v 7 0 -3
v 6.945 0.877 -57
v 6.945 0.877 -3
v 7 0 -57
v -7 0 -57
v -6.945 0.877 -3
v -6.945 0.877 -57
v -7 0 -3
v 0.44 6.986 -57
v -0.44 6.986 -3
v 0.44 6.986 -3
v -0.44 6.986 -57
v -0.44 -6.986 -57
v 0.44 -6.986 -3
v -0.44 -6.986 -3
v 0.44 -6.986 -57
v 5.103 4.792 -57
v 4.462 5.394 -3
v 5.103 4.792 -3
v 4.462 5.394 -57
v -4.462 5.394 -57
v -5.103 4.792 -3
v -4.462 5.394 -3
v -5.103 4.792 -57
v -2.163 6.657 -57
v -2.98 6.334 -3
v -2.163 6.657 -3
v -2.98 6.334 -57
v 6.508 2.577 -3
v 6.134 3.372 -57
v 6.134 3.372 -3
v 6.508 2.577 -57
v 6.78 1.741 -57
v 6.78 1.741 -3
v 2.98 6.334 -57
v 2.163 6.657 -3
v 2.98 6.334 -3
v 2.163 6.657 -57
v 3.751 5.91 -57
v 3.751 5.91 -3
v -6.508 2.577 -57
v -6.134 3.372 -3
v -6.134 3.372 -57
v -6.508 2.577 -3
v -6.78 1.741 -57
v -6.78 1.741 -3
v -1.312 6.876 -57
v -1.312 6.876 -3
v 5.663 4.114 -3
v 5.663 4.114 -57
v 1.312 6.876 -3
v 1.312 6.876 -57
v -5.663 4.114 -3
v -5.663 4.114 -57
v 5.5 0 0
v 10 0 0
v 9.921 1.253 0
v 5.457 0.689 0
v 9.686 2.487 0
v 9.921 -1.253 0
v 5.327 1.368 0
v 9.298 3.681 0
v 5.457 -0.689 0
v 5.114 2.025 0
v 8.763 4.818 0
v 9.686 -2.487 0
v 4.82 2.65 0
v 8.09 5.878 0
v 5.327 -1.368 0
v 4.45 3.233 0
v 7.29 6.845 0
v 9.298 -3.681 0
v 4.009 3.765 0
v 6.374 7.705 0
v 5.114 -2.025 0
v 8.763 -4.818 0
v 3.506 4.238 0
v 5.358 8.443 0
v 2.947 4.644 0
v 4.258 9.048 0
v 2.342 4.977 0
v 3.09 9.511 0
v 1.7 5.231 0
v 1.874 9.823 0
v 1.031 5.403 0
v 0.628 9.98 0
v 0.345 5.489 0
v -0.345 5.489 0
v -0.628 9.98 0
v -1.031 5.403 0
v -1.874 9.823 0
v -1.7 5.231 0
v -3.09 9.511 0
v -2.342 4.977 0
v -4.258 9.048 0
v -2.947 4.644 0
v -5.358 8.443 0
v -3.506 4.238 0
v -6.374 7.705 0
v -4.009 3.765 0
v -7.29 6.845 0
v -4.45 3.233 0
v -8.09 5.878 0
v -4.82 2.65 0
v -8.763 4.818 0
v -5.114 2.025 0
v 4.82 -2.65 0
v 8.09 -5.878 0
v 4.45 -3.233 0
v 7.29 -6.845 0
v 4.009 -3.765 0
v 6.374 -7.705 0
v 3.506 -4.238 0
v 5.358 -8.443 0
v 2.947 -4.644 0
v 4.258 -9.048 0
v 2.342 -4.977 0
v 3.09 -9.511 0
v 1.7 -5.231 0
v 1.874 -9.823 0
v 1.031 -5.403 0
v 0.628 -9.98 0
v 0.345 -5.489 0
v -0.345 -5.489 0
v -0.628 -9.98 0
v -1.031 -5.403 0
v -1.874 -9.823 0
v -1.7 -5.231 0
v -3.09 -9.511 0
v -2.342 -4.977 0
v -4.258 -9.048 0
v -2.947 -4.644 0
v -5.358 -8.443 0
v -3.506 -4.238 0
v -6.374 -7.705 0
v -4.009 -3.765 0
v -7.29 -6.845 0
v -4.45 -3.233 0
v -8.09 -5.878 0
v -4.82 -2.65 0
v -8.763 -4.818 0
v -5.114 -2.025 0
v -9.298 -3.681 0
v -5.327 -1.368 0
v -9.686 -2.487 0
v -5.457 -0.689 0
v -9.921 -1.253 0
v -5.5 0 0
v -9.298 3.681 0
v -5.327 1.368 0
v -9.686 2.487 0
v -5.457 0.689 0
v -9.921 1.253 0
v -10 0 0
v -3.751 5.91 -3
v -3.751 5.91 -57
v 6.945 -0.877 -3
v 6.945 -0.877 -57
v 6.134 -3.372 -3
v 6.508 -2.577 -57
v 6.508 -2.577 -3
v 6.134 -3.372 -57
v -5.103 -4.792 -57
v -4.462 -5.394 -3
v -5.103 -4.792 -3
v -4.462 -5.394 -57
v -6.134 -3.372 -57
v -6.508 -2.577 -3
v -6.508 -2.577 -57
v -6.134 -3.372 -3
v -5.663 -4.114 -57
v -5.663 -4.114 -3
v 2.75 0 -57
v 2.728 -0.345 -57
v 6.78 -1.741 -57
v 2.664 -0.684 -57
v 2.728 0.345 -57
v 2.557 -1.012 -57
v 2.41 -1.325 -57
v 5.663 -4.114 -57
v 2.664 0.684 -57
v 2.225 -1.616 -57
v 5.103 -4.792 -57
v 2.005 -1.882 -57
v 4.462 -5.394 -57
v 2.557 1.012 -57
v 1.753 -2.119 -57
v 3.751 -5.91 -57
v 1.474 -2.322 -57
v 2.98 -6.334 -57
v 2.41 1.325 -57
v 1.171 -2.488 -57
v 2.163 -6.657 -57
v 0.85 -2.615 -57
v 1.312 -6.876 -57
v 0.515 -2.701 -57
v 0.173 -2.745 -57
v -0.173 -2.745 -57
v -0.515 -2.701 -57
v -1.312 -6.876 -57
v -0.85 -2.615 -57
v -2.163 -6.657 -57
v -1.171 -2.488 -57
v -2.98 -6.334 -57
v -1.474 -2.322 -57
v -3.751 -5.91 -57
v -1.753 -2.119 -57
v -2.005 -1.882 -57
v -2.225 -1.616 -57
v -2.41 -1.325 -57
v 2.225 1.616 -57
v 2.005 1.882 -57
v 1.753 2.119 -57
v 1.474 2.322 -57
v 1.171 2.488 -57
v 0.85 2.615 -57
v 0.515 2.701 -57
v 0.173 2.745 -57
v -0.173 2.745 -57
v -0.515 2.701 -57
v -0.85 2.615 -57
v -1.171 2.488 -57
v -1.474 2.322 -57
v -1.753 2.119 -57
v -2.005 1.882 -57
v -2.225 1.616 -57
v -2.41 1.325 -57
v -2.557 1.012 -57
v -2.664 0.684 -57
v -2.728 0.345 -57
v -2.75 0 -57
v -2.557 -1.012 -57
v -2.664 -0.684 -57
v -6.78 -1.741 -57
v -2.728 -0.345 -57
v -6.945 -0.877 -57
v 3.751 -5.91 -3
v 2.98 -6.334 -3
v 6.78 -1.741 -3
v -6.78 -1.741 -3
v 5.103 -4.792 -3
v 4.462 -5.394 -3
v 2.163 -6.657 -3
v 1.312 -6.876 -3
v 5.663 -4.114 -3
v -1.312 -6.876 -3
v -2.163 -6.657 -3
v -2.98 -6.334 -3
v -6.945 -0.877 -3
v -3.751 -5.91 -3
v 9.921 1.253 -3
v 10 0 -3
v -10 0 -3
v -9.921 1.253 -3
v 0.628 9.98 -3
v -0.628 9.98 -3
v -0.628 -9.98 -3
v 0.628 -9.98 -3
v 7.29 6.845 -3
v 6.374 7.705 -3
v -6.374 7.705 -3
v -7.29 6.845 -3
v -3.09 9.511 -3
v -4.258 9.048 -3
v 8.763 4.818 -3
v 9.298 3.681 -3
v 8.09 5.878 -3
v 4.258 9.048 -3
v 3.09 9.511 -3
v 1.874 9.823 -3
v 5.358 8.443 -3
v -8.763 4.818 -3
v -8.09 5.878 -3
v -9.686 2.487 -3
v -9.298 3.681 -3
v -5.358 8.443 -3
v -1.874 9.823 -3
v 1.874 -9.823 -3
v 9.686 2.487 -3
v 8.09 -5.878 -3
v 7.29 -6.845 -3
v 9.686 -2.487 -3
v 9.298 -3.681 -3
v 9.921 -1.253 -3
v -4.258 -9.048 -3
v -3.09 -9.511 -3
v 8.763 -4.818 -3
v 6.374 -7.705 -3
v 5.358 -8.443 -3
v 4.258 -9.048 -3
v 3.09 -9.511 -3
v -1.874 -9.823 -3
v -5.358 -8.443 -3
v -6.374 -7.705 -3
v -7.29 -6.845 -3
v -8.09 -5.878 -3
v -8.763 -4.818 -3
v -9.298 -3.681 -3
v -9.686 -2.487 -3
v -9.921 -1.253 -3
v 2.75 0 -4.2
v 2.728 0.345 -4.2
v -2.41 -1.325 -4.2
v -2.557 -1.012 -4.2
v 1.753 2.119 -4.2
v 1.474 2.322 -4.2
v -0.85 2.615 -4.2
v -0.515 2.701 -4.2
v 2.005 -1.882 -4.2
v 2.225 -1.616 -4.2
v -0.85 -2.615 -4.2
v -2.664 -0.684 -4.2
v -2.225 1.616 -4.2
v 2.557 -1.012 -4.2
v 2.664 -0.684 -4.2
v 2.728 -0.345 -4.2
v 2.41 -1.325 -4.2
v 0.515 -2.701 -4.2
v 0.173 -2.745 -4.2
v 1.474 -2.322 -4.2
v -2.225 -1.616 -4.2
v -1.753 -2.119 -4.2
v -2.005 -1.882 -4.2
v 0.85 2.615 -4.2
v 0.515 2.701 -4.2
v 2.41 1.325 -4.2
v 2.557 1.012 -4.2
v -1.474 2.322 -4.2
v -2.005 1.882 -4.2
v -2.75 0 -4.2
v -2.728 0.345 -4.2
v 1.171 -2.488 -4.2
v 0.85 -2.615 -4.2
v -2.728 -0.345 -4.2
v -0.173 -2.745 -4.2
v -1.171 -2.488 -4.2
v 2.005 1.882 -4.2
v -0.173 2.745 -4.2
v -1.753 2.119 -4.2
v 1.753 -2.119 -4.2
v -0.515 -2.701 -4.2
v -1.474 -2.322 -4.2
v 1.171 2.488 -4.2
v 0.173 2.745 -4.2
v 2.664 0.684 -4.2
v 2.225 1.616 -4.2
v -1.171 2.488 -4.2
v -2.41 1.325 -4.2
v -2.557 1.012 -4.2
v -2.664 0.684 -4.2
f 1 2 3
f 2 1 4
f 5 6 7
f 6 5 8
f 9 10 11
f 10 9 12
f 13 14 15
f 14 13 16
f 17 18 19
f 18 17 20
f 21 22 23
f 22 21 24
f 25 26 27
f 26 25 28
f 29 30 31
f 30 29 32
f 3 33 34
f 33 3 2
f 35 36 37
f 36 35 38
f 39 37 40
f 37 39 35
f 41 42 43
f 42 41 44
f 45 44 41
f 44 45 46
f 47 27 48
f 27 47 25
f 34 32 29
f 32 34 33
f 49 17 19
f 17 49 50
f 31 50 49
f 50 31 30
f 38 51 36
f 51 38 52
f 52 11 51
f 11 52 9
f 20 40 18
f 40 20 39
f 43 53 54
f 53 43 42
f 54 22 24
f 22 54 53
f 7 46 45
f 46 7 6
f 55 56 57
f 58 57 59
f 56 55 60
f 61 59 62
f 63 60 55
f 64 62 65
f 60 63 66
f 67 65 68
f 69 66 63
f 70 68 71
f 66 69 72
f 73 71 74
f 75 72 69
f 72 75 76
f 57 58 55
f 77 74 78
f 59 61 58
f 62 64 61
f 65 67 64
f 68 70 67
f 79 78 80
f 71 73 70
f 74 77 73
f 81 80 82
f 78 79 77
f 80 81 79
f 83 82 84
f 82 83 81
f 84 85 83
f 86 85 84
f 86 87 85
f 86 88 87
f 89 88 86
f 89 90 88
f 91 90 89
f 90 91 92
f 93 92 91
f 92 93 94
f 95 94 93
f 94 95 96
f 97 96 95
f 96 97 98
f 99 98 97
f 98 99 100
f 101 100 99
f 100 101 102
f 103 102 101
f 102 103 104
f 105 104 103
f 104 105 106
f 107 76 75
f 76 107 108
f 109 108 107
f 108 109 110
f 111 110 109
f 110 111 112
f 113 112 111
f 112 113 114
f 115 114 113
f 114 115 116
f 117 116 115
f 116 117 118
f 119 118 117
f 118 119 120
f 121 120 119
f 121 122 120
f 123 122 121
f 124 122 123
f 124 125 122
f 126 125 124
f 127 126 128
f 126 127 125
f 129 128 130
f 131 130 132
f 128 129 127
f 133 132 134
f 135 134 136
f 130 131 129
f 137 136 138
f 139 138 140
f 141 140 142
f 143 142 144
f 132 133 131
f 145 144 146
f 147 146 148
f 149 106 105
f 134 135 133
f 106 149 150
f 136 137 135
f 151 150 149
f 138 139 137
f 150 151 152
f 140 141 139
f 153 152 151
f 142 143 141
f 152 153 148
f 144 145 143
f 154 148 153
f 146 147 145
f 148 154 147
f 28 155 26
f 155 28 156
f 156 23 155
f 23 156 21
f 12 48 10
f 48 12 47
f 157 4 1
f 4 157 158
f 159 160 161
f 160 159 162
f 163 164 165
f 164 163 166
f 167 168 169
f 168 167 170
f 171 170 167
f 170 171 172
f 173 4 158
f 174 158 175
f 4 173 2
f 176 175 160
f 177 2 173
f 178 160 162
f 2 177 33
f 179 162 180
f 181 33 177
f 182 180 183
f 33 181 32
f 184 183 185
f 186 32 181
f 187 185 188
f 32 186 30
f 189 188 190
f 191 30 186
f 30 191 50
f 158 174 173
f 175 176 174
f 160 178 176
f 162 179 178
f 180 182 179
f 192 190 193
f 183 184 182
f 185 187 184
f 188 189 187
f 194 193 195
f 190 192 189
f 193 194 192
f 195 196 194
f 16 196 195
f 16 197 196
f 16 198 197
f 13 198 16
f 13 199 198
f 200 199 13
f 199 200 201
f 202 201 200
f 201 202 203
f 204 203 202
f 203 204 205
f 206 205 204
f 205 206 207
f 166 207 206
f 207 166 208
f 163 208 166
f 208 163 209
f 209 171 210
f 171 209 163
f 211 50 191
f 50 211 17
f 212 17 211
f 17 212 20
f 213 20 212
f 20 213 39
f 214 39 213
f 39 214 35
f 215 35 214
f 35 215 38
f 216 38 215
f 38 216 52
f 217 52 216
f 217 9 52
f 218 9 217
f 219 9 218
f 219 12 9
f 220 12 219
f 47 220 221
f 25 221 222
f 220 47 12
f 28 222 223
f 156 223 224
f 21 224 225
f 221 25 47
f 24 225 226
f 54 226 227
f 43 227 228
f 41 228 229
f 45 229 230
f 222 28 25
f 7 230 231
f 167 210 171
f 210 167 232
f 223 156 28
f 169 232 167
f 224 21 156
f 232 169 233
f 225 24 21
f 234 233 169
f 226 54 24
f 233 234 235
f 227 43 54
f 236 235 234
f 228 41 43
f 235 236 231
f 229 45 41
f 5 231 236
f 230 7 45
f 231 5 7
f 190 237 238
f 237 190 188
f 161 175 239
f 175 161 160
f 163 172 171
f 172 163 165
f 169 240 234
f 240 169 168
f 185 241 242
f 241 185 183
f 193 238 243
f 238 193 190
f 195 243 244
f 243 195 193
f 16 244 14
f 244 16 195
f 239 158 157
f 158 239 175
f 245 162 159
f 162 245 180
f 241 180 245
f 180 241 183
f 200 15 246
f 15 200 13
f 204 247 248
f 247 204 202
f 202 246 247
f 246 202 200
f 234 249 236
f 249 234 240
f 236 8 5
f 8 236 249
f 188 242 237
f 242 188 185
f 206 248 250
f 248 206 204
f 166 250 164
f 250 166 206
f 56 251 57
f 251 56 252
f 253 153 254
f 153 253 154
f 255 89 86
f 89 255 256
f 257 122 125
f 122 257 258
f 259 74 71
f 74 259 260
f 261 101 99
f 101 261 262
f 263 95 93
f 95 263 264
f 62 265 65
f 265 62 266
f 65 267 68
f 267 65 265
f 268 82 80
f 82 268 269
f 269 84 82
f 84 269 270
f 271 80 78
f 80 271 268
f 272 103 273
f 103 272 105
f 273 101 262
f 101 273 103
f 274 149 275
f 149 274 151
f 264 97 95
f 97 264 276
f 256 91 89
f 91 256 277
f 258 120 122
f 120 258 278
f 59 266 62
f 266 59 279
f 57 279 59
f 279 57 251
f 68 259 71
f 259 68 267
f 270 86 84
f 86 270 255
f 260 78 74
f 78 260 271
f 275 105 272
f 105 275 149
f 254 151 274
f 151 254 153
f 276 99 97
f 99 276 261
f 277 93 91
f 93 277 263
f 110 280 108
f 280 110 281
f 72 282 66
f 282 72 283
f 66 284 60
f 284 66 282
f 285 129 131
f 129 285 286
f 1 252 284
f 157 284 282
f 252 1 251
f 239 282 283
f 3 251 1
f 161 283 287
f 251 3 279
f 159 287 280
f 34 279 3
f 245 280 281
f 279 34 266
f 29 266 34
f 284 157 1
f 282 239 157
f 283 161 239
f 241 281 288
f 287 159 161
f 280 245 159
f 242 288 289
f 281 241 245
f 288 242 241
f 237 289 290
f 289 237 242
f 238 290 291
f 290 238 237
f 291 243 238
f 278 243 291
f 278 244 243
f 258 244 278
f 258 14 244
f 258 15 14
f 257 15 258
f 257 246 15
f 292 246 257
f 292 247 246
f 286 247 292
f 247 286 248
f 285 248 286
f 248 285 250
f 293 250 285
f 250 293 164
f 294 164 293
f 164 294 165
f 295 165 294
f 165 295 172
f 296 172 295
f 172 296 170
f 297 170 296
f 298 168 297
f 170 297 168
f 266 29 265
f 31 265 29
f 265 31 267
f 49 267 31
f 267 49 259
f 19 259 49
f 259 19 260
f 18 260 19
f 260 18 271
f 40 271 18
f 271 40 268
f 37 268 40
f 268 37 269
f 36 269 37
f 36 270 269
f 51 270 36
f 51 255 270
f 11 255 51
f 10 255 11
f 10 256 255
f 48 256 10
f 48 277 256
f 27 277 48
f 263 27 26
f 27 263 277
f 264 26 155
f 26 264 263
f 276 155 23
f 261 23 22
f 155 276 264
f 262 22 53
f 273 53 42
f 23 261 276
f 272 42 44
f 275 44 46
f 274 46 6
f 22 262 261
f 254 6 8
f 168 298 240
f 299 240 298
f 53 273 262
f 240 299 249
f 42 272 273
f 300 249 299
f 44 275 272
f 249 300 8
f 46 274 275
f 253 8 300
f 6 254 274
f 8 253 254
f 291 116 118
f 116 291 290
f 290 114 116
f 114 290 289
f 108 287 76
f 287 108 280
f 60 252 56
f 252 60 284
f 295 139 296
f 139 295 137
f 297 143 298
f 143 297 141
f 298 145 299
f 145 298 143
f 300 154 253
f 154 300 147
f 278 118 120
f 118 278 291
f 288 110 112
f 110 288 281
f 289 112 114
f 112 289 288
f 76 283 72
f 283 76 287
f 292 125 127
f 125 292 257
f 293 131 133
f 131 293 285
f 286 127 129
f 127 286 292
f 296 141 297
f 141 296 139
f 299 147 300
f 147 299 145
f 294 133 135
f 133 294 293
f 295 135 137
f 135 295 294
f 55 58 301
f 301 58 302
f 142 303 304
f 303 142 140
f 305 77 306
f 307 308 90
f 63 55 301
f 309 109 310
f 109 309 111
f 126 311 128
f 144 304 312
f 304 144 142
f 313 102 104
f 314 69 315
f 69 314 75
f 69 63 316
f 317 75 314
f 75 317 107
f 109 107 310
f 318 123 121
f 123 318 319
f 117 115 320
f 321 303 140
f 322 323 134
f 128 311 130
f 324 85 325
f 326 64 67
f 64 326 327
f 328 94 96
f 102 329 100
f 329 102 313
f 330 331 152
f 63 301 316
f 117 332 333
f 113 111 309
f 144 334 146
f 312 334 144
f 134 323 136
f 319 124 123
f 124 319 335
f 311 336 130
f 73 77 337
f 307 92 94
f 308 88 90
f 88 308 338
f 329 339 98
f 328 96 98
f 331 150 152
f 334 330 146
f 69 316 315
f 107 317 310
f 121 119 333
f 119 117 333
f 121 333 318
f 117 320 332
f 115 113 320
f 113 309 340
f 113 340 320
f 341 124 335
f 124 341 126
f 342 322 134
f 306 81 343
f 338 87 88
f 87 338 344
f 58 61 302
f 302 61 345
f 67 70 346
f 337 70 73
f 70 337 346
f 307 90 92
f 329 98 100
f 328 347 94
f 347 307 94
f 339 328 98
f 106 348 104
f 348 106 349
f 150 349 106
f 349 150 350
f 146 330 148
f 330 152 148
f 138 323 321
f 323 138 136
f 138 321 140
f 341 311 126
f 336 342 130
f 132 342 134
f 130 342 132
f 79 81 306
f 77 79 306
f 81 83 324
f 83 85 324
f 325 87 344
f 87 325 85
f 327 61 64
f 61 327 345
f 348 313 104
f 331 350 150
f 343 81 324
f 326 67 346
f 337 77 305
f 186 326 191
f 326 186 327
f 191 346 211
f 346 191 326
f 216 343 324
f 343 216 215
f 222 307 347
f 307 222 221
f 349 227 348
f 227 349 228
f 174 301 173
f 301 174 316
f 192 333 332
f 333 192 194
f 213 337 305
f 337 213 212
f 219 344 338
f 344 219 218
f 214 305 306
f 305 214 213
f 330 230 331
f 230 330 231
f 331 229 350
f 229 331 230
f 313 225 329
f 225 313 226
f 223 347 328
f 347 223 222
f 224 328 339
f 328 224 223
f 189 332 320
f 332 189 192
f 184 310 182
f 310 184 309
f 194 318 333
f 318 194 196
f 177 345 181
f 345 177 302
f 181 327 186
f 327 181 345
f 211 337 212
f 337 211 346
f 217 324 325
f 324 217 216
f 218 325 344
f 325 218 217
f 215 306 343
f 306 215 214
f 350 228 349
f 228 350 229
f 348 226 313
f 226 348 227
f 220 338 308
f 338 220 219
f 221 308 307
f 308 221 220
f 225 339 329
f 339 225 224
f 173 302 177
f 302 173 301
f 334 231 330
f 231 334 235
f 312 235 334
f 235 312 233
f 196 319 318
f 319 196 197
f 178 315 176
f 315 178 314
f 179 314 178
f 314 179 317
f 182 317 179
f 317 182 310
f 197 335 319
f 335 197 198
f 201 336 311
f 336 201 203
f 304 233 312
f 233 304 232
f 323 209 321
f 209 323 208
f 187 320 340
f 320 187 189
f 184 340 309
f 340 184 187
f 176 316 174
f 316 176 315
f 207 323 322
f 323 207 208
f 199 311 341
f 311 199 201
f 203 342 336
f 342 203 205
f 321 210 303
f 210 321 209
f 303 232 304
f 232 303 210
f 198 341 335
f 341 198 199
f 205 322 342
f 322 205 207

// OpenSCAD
$fn = 50;


difference() {
	union() {
		translate(v = [0, 0, -57.0000000000]) {
			cylinder(h = 57, r = 7.0000000000);
		}
		translate(v = [0, 0, -3.0000000000]) {
			cylinder(h = 3, r = 10.0000000000);
		}
	}
	union() {
		translate(v = [0, 0, 0]) {
			rotate(a = [0, 0, 0]) {
				difference() {
					union() {
						#translate(v = [0, 0, -57.0000000000]) {
							cylinder(h = 57, r = 2.2500000000);
						}
						#translate(v = [0, 0, -4.2000000000]) {
							cylinder(h = 4.2000000000, r1 = 2.7500000000, r2 = 5.5000000000);
						}
						#translate(v = [0, 0, -57.0000000000]) {
							cylinder(h = 57, r = 2.7500000000);
						}
						#translate(v = [0, 0, -57.0000000000]) {
							cylinder(h = 57, r = 2.2500000000);
						}
					}
					union();
				}
			}
		}
	}
}
